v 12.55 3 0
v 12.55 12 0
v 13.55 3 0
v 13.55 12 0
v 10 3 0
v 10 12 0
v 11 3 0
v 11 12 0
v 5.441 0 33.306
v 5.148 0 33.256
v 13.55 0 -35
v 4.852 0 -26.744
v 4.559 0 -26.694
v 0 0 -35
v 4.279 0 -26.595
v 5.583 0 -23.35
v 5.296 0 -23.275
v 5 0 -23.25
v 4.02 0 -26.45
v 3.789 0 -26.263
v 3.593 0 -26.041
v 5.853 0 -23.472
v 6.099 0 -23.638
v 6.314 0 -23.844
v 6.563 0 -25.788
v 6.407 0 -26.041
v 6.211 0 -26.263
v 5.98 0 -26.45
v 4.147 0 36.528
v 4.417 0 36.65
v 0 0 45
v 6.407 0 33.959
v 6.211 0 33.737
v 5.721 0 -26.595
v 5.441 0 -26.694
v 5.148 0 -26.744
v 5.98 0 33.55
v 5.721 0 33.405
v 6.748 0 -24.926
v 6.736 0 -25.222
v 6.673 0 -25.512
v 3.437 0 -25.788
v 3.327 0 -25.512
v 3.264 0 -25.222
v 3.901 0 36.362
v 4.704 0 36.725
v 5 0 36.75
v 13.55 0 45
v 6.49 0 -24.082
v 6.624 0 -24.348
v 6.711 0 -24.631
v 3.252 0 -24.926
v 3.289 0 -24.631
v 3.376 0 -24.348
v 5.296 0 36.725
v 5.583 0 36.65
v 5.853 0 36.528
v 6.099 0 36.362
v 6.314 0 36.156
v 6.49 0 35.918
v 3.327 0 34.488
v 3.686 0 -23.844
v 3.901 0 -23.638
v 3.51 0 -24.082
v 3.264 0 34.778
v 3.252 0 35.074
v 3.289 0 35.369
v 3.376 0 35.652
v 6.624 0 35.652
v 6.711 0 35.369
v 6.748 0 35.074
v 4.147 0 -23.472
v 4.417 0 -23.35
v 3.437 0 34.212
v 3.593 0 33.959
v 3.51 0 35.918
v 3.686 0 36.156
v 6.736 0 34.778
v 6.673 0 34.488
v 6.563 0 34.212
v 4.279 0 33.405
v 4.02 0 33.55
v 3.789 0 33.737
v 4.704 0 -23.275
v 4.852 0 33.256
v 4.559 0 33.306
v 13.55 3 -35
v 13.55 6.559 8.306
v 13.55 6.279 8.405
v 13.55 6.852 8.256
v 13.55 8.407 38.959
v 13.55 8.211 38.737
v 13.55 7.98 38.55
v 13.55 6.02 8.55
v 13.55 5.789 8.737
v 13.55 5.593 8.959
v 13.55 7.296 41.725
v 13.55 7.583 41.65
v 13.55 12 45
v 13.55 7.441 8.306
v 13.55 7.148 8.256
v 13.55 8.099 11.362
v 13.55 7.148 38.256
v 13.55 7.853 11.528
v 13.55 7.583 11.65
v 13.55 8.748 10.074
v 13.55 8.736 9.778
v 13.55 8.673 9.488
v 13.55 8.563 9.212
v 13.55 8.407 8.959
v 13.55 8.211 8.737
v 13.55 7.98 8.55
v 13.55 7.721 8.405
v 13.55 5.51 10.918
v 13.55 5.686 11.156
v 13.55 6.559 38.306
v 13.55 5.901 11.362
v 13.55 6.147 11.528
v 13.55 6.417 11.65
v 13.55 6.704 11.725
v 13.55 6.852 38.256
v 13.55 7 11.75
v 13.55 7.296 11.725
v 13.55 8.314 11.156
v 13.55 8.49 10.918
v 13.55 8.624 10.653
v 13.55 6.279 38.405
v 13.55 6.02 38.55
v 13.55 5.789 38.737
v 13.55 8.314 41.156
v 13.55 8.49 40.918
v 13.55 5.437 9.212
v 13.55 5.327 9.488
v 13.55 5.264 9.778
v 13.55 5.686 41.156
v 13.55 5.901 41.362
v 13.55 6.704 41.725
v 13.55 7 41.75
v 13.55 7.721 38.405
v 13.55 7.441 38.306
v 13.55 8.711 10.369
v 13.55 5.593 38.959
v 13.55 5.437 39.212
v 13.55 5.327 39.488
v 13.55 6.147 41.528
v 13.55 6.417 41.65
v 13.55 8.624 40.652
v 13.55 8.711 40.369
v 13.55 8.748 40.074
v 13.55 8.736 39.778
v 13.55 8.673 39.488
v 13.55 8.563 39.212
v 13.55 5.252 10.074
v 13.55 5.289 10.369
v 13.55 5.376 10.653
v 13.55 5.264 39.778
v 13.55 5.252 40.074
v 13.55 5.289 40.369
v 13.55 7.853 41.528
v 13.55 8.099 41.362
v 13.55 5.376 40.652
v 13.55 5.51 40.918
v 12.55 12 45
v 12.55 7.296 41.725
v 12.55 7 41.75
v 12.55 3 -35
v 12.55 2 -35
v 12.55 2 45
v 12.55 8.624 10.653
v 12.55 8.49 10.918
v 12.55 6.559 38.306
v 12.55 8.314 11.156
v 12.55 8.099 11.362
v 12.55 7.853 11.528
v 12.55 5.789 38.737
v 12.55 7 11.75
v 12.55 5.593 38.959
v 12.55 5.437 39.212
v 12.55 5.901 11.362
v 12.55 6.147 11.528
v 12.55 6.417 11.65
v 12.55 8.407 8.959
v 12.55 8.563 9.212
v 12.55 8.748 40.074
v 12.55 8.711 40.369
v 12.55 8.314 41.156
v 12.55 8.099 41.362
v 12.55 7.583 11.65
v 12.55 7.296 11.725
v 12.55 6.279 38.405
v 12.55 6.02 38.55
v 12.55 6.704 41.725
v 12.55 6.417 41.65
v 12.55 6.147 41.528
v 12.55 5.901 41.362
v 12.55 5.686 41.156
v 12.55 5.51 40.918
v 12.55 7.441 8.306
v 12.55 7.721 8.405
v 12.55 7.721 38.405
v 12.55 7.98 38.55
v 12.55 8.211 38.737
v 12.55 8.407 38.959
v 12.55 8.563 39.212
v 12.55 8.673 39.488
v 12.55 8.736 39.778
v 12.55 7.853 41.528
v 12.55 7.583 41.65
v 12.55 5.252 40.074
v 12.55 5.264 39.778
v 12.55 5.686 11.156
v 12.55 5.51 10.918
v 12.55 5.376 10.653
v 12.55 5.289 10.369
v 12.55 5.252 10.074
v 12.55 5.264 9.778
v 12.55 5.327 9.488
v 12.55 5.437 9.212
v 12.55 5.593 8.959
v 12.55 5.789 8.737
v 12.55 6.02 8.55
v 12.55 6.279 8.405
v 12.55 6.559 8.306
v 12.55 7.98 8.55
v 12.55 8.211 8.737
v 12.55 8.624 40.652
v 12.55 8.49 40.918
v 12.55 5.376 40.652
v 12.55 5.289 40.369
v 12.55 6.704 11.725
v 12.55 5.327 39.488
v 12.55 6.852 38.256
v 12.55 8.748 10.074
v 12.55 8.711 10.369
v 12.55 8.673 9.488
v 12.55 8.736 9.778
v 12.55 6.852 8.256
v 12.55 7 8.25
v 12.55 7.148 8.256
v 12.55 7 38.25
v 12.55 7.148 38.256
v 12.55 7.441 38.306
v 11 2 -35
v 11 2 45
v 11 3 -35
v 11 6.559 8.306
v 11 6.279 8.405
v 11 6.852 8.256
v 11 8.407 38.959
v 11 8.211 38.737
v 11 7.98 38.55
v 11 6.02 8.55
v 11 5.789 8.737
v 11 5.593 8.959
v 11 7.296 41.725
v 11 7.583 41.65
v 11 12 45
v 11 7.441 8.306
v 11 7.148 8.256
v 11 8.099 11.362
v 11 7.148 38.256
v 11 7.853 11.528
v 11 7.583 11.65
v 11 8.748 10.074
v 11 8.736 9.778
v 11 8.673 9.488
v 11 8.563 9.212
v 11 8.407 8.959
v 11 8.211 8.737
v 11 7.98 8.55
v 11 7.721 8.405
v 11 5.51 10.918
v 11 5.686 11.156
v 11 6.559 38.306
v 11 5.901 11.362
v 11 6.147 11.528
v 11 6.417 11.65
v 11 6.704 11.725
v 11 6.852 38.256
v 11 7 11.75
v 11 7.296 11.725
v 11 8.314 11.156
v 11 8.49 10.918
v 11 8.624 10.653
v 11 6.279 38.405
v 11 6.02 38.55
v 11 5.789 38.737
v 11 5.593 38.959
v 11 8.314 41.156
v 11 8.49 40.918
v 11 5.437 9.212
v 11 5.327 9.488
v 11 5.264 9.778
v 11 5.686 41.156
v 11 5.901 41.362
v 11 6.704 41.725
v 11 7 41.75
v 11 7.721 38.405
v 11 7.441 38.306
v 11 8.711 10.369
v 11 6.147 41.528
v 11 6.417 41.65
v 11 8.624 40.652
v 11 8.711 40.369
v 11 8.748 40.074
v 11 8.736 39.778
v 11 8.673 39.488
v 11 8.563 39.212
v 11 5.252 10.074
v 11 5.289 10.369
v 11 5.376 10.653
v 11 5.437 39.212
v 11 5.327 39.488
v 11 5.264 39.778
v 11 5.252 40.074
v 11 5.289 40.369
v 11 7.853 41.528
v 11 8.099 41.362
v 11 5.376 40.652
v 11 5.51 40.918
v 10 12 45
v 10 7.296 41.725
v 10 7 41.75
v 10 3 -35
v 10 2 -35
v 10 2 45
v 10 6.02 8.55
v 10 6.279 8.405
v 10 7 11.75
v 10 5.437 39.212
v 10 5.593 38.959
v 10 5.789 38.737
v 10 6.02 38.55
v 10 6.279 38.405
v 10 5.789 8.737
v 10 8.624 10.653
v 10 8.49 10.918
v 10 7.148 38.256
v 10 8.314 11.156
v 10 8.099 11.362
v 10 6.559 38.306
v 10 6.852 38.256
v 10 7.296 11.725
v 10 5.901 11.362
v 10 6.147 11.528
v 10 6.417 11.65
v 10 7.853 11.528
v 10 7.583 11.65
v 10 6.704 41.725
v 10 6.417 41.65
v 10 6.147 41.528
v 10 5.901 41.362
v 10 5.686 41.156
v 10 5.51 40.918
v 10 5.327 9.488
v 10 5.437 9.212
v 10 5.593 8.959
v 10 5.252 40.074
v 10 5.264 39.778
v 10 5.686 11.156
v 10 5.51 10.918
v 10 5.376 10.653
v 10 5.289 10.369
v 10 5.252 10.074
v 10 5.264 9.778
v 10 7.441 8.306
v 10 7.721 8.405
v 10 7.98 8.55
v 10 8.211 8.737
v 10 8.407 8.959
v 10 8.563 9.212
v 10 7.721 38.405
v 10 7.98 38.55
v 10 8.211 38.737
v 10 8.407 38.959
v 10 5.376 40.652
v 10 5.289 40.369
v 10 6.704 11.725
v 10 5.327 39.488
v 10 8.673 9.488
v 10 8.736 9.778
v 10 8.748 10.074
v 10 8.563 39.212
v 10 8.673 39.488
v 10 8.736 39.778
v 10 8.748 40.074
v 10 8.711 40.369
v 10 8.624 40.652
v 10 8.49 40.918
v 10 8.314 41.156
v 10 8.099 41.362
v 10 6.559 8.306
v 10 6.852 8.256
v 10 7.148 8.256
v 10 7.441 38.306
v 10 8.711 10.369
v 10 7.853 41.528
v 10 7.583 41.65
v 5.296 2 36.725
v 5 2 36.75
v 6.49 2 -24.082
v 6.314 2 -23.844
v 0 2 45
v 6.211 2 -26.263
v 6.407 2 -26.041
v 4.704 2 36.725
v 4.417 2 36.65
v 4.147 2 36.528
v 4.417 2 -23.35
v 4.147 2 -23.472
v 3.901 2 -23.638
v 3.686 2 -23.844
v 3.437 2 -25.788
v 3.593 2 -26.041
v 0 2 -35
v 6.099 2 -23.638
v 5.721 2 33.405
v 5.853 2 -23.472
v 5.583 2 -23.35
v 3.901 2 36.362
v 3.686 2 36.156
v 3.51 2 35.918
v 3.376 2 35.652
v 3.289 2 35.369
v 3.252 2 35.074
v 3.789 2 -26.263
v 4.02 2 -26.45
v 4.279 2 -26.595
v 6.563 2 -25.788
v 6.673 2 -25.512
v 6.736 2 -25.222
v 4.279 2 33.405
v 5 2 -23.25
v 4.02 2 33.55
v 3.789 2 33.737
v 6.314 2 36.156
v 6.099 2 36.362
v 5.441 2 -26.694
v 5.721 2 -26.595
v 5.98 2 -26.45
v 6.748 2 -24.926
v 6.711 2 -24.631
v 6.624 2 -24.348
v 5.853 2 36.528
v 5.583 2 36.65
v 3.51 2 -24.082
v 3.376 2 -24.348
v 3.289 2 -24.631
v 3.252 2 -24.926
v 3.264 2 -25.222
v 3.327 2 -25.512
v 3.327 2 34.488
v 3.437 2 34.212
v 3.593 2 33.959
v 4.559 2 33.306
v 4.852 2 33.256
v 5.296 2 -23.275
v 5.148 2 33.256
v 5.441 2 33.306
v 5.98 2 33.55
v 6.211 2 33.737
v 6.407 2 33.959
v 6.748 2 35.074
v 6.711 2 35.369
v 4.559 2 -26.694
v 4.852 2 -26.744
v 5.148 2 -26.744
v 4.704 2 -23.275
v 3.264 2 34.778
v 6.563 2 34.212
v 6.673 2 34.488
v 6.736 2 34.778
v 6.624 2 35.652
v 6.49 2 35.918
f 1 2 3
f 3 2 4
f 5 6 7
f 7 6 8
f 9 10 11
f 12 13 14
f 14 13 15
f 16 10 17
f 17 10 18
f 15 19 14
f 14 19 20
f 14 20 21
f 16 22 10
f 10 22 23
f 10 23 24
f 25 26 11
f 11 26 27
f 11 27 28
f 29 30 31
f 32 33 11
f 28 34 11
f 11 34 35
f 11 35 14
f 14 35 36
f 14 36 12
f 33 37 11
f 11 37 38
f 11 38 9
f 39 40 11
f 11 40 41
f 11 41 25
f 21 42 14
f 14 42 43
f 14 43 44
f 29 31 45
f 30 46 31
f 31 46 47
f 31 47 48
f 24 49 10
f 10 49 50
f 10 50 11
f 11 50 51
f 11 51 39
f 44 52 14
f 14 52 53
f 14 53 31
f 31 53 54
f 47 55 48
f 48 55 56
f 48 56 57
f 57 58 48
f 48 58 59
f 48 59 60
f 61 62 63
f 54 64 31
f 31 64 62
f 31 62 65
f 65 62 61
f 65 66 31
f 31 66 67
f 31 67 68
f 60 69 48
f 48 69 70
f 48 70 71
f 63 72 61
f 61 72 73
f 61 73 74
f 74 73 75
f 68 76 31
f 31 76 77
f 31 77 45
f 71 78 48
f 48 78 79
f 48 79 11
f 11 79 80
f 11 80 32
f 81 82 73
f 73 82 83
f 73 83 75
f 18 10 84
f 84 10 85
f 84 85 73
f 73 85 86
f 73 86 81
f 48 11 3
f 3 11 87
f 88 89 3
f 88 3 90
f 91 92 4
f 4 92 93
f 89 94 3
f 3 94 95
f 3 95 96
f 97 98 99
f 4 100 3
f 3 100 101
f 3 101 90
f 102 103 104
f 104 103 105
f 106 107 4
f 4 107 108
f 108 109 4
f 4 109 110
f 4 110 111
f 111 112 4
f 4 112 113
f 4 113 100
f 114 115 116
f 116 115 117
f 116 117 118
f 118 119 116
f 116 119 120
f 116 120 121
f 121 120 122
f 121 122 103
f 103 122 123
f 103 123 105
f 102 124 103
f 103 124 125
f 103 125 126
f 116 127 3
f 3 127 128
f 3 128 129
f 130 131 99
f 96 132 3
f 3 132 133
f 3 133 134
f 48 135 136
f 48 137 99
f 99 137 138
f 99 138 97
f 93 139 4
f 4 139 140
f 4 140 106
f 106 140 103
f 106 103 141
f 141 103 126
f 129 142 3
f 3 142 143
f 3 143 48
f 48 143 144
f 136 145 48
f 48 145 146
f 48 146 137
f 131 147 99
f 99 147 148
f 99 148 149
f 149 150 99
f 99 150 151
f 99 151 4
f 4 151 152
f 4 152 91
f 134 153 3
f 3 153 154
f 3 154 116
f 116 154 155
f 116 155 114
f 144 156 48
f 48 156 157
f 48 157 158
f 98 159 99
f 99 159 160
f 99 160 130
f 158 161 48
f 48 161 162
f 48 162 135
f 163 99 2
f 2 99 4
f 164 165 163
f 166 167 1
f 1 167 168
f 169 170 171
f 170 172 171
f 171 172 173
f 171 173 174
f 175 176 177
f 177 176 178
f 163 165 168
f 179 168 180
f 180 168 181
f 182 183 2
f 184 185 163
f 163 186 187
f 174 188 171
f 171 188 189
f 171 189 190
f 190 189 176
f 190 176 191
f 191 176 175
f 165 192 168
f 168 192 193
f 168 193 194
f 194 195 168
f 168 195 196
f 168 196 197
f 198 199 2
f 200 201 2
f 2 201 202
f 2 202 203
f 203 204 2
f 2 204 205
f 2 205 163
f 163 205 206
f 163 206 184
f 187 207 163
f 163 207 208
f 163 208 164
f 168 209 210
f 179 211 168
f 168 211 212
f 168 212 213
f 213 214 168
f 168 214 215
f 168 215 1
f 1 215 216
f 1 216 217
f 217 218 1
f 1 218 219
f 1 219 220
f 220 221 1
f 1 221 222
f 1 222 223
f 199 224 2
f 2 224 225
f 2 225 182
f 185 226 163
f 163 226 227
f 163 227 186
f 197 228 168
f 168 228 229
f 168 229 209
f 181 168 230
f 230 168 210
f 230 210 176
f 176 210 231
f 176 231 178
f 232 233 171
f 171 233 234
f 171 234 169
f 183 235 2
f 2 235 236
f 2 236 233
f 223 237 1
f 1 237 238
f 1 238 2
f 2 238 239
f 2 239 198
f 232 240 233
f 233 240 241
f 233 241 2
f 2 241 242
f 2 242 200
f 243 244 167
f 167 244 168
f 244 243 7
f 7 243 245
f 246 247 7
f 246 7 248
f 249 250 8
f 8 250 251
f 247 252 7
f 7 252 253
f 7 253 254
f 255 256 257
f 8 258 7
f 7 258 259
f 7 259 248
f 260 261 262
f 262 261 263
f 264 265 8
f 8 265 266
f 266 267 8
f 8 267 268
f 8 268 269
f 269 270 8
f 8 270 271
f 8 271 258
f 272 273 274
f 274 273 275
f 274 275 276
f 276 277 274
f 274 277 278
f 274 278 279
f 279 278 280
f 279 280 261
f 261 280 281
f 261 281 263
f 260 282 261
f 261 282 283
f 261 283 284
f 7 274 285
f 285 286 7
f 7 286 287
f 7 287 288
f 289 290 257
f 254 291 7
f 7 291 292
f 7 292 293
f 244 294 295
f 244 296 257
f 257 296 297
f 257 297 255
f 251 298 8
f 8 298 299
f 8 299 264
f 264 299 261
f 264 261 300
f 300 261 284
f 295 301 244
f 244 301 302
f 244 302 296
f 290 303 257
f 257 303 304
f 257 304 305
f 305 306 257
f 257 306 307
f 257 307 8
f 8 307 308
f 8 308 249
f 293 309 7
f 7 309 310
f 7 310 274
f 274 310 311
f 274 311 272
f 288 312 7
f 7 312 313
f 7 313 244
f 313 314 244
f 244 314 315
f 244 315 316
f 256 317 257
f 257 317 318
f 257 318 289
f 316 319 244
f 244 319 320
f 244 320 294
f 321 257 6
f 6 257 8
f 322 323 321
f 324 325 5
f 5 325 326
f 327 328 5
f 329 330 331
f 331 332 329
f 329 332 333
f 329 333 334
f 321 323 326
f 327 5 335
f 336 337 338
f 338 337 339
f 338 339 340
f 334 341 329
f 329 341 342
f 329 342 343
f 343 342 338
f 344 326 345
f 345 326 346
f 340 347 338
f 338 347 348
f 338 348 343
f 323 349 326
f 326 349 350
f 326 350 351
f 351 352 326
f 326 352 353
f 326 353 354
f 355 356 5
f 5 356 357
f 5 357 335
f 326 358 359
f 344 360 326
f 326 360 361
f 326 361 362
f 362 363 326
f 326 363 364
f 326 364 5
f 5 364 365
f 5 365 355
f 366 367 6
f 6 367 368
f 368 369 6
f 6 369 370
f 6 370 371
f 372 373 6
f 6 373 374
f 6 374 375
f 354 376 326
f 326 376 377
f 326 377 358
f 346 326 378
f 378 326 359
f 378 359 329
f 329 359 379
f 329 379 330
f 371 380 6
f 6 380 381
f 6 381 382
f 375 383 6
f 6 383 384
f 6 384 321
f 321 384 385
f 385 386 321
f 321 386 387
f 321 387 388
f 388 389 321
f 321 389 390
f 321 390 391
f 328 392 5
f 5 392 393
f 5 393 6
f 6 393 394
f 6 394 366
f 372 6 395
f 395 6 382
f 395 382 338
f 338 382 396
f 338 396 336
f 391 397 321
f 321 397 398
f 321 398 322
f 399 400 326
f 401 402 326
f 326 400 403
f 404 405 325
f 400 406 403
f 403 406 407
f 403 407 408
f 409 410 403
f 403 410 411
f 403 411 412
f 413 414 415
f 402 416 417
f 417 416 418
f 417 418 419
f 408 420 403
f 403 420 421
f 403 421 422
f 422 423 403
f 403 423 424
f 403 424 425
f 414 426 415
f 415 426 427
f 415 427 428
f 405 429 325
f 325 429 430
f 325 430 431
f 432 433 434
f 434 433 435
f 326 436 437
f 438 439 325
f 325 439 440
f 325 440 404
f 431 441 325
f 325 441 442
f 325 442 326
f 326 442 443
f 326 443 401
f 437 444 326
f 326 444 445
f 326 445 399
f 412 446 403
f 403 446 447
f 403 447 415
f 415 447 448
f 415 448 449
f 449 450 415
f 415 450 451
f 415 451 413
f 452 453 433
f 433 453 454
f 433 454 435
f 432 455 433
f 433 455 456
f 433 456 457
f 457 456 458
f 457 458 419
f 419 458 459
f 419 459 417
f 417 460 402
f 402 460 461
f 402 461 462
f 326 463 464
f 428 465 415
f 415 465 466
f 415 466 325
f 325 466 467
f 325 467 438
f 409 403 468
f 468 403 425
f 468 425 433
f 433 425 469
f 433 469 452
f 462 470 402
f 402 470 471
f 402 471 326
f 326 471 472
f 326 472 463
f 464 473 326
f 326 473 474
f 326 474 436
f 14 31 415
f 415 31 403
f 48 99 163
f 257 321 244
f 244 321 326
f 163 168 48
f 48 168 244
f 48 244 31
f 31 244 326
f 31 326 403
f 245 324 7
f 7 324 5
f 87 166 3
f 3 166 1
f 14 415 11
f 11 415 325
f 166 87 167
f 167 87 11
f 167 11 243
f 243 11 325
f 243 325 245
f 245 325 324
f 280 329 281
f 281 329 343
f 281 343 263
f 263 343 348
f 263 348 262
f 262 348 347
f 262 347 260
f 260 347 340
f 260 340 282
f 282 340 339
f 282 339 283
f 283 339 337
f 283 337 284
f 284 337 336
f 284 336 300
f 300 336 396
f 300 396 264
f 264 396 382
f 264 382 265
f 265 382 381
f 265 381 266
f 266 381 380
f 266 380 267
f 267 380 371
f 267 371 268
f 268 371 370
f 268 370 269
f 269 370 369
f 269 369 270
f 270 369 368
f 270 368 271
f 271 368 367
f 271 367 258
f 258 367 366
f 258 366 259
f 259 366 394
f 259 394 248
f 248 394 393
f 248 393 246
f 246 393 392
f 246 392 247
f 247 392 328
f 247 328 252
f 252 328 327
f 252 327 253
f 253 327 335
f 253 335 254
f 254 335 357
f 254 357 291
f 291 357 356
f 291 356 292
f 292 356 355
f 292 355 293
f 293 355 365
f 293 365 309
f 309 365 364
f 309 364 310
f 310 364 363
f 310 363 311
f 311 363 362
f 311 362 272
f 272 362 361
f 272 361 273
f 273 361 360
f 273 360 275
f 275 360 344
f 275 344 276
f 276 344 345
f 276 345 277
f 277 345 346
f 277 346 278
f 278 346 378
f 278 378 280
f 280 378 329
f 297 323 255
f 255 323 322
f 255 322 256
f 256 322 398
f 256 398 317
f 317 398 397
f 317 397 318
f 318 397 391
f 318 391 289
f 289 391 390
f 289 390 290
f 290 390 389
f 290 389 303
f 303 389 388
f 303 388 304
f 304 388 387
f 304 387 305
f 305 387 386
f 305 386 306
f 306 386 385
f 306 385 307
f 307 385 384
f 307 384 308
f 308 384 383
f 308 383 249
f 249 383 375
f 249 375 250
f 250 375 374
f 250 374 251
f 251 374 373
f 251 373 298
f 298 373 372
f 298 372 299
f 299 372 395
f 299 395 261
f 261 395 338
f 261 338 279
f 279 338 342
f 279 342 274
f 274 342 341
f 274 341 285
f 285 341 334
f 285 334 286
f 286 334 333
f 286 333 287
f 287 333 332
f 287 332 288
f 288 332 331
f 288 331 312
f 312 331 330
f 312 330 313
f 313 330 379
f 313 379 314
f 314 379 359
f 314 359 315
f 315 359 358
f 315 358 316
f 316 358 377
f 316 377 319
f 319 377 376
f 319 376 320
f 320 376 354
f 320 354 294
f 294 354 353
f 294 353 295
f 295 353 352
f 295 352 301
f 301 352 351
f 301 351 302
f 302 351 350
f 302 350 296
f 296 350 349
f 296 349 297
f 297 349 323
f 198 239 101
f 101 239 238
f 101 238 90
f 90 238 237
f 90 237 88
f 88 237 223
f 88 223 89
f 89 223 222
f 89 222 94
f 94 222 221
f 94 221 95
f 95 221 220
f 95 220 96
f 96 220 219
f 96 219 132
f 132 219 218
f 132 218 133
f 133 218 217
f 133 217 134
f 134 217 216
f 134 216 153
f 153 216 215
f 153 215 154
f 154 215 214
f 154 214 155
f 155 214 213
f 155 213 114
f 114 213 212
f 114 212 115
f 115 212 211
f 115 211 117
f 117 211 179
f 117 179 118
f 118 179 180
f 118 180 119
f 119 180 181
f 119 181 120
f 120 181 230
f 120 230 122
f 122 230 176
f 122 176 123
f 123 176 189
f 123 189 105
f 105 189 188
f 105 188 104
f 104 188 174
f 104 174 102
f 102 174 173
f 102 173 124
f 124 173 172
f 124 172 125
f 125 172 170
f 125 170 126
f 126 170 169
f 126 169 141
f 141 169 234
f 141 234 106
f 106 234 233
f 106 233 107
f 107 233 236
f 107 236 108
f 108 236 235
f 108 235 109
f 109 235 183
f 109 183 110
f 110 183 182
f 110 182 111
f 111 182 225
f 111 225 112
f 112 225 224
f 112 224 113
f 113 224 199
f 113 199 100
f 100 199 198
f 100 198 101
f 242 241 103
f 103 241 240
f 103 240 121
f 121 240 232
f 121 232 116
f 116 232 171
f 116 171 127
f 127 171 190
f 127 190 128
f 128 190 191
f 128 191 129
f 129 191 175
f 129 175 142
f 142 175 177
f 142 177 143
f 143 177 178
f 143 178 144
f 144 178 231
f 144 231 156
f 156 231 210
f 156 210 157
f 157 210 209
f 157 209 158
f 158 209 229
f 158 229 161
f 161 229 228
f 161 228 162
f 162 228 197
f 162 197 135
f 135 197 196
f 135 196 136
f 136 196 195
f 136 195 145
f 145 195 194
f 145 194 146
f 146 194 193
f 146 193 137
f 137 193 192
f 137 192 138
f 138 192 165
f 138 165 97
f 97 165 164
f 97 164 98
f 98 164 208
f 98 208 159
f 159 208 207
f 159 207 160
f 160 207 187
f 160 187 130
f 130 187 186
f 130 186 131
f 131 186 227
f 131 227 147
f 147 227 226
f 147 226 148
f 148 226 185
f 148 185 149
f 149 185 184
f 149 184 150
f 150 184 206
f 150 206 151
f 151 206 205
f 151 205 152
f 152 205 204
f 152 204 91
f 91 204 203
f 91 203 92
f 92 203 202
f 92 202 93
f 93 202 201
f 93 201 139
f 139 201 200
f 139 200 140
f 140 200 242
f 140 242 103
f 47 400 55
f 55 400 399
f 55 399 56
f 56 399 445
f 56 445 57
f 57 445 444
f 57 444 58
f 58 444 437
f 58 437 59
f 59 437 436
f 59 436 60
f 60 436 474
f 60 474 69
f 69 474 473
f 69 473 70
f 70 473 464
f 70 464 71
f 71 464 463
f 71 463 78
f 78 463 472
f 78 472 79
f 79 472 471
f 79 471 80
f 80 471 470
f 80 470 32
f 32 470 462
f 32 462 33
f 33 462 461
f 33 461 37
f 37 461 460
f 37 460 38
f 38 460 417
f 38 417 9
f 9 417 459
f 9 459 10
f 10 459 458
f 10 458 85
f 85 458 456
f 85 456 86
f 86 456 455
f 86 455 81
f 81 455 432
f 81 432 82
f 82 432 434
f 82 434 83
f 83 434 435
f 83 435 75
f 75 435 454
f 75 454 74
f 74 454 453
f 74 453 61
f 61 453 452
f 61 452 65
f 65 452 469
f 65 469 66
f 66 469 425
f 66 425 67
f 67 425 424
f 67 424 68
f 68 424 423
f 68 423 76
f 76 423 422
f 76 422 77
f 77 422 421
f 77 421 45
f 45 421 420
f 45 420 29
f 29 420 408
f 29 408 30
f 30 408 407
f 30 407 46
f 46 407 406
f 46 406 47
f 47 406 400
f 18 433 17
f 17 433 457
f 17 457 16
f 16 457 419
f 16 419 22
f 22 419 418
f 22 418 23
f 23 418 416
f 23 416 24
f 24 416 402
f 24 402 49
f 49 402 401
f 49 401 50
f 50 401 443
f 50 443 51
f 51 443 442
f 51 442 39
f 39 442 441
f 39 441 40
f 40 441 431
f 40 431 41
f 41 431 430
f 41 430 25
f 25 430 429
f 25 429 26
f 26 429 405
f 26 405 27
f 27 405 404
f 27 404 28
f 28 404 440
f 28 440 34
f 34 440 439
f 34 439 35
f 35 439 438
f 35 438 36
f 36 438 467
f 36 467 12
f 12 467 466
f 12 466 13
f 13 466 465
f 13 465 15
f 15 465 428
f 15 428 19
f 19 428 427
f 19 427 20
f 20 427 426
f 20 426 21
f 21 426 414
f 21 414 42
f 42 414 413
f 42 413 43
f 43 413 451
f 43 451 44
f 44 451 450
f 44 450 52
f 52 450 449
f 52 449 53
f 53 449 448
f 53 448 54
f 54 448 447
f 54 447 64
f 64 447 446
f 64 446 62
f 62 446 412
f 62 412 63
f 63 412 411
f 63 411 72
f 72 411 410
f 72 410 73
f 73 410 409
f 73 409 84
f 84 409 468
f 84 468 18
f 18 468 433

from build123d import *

# Parameters (mm, degrees)
BOSS_EXTRUDE1_DEPTH = 45
BOSS_EXTRUDE2_DEPTH = 35
SKETCH2_R           = 1.75
CUT_EXTRUDE1_DEPTH  = 4.55
CUT_EXTRUDE2_REACH  = 4
SKETCH3_R           = 1.75


with BuildPart() as part:
    # Sketch1 → Boss-Extrude1 (new body)
    with BuildSketch(Plane.XY):
        Polygon((0, 0), (0, 2), (10, 2), (10, 12), (11, 12), (11, 2), (12.55, 2), (12.55, 12), (13.55, 12), (13.55, 0), align=None)
    extrude(amount=BOSS_EXTRUDE1_DEPTH)

    # Sketch4 → Boss-Extrude2 (add)
    with BuildSketch(Plane.XY):
        Polygon((0, 2), (0, 0), (13.55, 0), (13.55, 3), (12.55, 3), (12.55, 2), (11, 2), (11, 3), (10, 3), (10, 2), align=None)
    extrude(amount=-BOSS_EXTRUDE2_DEPTH)

    # Sketch2 → Cut-Extrude1 (cut, through all)
    with BuildSketch(Plane.ZY.offset(-10)):
        with Locations((40, 7)):
            Circle(SKETCH2_R)
        with Locations((10, 7)):
            Circle(SKETCH2_R)
    extrude(amount=-CUT_EXTRUDE1_DEPTH, mode=Mode.SUBTRACT)

    # Sketch3 → Cut-Extrude2 (cut, up to next)
    with BuildSketch(Plane(origin=(0, 2, 0), x_dir=(1, 0, 0), z_dir=(0, 1, 0)), mode=Mode.PRIVATE) as cut_extrude2_sk1:
        with Locations((5, 25)):
            Circle(SKETCH3_R)
    cut_extrude2_tool1 = extrude(cut_extrude2_sk1.sketch, amount=-CUT_EXTRUDE2_REACH, mode=Mode.PRIVATE) & part.part
    add(cut_extrude2_tool1.solids().sort_by_distance((5, 2, -25))[0], mode=Mode.SUBTRACT)
    # Sketch3 → Cut-Extrude2 (cut, up to next)
    with BuildSketch(Plane(origin=(0, 2, 0), x_dir=(1, 0, 0), z_dir=(0, 1, 0)), mode=Mode.PRIVATE) as cut_extrude2_sk2:
        with Locations((5, -35)):
            Circle(SKETCH3_R)
    cut_extrude2_tool2 = extrude(cut_extrude2_sk2.sketch, amount=-CUT_EXTRUDE2_REACH, mode=Mode.PRIVATE) & part.part
    add(cut_extrude2_tool2.solids().sort_by_distance((5, 2, 35))[0], mode=Mode.SUBTRACT)


solid = part.part
